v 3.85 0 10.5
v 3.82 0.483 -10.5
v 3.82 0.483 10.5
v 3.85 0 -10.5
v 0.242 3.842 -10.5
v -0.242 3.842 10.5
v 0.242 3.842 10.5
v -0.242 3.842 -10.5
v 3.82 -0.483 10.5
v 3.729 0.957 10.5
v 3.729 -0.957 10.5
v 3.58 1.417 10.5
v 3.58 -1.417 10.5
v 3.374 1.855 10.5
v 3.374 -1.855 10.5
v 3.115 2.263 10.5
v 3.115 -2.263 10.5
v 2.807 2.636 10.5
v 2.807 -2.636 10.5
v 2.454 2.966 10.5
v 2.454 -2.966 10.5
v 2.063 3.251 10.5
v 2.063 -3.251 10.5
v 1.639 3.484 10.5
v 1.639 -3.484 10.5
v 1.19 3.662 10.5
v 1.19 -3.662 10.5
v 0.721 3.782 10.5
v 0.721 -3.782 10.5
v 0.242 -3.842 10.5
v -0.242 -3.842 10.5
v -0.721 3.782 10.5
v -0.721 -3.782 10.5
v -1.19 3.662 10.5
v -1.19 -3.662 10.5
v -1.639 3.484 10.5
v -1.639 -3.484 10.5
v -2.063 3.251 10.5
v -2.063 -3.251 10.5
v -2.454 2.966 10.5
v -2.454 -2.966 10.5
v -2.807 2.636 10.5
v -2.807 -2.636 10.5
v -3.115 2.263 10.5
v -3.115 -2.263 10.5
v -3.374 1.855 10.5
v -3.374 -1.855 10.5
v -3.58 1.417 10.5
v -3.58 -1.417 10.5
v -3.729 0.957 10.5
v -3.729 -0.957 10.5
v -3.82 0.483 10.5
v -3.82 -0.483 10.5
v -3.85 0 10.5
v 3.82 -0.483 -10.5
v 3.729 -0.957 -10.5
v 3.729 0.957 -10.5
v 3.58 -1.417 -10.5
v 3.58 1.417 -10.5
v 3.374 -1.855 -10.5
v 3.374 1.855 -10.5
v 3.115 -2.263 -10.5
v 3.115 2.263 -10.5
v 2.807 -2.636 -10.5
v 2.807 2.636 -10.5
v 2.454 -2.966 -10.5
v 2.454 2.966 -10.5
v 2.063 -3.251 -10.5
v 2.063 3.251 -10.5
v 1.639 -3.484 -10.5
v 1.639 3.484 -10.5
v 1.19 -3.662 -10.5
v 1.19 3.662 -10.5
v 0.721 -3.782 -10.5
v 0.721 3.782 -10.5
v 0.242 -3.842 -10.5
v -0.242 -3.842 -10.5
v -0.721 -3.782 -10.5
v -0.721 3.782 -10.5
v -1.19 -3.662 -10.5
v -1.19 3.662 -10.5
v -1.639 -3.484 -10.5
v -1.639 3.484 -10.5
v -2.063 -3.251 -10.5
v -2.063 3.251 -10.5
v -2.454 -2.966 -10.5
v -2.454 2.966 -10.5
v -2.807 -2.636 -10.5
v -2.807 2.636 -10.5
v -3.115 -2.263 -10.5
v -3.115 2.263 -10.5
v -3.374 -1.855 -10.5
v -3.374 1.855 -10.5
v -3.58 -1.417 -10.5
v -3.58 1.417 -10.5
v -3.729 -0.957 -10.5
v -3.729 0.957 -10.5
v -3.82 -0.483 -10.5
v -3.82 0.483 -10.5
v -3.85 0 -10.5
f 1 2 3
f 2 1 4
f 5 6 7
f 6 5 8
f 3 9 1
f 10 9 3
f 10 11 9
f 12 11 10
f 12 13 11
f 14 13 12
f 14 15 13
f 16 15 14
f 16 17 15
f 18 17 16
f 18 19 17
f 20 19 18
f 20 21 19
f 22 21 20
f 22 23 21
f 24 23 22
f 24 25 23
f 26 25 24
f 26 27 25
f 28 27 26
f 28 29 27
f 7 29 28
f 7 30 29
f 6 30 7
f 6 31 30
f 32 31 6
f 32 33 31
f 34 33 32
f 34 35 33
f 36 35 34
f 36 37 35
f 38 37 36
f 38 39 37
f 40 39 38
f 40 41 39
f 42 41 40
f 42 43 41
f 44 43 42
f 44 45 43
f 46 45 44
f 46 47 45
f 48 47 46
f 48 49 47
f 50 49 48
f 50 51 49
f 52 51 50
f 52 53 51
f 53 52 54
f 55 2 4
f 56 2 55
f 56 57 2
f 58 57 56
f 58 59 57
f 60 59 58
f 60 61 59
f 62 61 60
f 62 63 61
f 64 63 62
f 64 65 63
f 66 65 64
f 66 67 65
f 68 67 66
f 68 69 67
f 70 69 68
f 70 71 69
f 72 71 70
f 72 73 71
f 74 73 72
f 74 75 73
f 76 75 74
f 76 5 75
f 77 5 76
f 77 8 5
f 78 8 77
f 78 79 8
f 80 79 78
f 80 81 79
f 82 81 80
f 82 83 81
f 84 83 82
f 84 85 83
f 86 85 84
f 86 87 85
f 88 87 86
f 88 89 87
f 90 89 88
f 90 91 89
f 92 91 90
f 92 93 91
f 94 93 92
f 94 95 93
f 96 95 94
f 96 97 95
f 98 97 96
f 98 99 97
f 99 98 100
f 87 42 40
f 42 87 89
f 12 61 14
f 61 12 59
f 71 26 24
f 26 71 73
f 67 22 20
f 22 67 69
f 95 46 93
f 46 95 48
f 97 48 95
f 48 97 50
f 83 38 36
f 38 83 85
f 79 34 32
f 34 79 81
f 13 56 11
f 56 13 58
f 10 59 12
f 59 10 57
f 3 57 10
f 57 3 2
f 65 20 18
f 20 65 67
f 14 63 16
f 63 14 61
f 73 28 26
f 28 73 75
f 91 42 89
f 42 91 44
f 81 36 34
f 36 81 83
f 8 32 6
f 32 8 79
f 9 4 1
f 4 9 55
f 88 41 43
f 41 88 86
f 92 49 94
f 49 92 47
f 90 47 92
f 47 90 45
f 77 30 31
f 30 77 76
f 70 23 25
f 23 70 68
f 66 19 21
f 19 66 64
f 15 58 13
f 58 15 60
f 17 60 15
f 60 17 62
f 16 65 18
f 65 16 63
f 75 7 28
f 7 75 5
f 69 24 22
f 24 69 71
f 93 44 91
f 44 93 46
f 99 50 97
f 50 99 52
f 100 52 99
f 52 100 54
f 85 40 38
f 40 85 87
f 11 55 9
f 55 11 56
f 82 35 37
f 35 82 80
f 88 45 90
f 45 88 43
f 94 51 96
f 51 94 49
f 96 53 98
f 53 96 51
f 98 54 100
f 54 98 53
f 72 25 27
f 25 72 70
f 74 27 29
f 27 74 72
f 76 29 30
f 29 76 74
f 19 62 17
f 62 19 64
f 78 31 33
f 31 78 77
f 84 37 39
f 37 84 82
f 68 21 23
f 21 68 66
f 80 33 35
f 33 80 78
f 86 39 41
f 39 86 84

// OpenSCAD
$fn = 50;


difference() {
	union() {
		translate(v = [0, 0, -10.5000000000]) {
			cylinder(h = 21, r = 3.8500000000);
		}
	}
	union() {
		translate(v = [0, 0, -100.0000000000]) {
			cylinder(h = 200, r = 0);
		}
	}
}
